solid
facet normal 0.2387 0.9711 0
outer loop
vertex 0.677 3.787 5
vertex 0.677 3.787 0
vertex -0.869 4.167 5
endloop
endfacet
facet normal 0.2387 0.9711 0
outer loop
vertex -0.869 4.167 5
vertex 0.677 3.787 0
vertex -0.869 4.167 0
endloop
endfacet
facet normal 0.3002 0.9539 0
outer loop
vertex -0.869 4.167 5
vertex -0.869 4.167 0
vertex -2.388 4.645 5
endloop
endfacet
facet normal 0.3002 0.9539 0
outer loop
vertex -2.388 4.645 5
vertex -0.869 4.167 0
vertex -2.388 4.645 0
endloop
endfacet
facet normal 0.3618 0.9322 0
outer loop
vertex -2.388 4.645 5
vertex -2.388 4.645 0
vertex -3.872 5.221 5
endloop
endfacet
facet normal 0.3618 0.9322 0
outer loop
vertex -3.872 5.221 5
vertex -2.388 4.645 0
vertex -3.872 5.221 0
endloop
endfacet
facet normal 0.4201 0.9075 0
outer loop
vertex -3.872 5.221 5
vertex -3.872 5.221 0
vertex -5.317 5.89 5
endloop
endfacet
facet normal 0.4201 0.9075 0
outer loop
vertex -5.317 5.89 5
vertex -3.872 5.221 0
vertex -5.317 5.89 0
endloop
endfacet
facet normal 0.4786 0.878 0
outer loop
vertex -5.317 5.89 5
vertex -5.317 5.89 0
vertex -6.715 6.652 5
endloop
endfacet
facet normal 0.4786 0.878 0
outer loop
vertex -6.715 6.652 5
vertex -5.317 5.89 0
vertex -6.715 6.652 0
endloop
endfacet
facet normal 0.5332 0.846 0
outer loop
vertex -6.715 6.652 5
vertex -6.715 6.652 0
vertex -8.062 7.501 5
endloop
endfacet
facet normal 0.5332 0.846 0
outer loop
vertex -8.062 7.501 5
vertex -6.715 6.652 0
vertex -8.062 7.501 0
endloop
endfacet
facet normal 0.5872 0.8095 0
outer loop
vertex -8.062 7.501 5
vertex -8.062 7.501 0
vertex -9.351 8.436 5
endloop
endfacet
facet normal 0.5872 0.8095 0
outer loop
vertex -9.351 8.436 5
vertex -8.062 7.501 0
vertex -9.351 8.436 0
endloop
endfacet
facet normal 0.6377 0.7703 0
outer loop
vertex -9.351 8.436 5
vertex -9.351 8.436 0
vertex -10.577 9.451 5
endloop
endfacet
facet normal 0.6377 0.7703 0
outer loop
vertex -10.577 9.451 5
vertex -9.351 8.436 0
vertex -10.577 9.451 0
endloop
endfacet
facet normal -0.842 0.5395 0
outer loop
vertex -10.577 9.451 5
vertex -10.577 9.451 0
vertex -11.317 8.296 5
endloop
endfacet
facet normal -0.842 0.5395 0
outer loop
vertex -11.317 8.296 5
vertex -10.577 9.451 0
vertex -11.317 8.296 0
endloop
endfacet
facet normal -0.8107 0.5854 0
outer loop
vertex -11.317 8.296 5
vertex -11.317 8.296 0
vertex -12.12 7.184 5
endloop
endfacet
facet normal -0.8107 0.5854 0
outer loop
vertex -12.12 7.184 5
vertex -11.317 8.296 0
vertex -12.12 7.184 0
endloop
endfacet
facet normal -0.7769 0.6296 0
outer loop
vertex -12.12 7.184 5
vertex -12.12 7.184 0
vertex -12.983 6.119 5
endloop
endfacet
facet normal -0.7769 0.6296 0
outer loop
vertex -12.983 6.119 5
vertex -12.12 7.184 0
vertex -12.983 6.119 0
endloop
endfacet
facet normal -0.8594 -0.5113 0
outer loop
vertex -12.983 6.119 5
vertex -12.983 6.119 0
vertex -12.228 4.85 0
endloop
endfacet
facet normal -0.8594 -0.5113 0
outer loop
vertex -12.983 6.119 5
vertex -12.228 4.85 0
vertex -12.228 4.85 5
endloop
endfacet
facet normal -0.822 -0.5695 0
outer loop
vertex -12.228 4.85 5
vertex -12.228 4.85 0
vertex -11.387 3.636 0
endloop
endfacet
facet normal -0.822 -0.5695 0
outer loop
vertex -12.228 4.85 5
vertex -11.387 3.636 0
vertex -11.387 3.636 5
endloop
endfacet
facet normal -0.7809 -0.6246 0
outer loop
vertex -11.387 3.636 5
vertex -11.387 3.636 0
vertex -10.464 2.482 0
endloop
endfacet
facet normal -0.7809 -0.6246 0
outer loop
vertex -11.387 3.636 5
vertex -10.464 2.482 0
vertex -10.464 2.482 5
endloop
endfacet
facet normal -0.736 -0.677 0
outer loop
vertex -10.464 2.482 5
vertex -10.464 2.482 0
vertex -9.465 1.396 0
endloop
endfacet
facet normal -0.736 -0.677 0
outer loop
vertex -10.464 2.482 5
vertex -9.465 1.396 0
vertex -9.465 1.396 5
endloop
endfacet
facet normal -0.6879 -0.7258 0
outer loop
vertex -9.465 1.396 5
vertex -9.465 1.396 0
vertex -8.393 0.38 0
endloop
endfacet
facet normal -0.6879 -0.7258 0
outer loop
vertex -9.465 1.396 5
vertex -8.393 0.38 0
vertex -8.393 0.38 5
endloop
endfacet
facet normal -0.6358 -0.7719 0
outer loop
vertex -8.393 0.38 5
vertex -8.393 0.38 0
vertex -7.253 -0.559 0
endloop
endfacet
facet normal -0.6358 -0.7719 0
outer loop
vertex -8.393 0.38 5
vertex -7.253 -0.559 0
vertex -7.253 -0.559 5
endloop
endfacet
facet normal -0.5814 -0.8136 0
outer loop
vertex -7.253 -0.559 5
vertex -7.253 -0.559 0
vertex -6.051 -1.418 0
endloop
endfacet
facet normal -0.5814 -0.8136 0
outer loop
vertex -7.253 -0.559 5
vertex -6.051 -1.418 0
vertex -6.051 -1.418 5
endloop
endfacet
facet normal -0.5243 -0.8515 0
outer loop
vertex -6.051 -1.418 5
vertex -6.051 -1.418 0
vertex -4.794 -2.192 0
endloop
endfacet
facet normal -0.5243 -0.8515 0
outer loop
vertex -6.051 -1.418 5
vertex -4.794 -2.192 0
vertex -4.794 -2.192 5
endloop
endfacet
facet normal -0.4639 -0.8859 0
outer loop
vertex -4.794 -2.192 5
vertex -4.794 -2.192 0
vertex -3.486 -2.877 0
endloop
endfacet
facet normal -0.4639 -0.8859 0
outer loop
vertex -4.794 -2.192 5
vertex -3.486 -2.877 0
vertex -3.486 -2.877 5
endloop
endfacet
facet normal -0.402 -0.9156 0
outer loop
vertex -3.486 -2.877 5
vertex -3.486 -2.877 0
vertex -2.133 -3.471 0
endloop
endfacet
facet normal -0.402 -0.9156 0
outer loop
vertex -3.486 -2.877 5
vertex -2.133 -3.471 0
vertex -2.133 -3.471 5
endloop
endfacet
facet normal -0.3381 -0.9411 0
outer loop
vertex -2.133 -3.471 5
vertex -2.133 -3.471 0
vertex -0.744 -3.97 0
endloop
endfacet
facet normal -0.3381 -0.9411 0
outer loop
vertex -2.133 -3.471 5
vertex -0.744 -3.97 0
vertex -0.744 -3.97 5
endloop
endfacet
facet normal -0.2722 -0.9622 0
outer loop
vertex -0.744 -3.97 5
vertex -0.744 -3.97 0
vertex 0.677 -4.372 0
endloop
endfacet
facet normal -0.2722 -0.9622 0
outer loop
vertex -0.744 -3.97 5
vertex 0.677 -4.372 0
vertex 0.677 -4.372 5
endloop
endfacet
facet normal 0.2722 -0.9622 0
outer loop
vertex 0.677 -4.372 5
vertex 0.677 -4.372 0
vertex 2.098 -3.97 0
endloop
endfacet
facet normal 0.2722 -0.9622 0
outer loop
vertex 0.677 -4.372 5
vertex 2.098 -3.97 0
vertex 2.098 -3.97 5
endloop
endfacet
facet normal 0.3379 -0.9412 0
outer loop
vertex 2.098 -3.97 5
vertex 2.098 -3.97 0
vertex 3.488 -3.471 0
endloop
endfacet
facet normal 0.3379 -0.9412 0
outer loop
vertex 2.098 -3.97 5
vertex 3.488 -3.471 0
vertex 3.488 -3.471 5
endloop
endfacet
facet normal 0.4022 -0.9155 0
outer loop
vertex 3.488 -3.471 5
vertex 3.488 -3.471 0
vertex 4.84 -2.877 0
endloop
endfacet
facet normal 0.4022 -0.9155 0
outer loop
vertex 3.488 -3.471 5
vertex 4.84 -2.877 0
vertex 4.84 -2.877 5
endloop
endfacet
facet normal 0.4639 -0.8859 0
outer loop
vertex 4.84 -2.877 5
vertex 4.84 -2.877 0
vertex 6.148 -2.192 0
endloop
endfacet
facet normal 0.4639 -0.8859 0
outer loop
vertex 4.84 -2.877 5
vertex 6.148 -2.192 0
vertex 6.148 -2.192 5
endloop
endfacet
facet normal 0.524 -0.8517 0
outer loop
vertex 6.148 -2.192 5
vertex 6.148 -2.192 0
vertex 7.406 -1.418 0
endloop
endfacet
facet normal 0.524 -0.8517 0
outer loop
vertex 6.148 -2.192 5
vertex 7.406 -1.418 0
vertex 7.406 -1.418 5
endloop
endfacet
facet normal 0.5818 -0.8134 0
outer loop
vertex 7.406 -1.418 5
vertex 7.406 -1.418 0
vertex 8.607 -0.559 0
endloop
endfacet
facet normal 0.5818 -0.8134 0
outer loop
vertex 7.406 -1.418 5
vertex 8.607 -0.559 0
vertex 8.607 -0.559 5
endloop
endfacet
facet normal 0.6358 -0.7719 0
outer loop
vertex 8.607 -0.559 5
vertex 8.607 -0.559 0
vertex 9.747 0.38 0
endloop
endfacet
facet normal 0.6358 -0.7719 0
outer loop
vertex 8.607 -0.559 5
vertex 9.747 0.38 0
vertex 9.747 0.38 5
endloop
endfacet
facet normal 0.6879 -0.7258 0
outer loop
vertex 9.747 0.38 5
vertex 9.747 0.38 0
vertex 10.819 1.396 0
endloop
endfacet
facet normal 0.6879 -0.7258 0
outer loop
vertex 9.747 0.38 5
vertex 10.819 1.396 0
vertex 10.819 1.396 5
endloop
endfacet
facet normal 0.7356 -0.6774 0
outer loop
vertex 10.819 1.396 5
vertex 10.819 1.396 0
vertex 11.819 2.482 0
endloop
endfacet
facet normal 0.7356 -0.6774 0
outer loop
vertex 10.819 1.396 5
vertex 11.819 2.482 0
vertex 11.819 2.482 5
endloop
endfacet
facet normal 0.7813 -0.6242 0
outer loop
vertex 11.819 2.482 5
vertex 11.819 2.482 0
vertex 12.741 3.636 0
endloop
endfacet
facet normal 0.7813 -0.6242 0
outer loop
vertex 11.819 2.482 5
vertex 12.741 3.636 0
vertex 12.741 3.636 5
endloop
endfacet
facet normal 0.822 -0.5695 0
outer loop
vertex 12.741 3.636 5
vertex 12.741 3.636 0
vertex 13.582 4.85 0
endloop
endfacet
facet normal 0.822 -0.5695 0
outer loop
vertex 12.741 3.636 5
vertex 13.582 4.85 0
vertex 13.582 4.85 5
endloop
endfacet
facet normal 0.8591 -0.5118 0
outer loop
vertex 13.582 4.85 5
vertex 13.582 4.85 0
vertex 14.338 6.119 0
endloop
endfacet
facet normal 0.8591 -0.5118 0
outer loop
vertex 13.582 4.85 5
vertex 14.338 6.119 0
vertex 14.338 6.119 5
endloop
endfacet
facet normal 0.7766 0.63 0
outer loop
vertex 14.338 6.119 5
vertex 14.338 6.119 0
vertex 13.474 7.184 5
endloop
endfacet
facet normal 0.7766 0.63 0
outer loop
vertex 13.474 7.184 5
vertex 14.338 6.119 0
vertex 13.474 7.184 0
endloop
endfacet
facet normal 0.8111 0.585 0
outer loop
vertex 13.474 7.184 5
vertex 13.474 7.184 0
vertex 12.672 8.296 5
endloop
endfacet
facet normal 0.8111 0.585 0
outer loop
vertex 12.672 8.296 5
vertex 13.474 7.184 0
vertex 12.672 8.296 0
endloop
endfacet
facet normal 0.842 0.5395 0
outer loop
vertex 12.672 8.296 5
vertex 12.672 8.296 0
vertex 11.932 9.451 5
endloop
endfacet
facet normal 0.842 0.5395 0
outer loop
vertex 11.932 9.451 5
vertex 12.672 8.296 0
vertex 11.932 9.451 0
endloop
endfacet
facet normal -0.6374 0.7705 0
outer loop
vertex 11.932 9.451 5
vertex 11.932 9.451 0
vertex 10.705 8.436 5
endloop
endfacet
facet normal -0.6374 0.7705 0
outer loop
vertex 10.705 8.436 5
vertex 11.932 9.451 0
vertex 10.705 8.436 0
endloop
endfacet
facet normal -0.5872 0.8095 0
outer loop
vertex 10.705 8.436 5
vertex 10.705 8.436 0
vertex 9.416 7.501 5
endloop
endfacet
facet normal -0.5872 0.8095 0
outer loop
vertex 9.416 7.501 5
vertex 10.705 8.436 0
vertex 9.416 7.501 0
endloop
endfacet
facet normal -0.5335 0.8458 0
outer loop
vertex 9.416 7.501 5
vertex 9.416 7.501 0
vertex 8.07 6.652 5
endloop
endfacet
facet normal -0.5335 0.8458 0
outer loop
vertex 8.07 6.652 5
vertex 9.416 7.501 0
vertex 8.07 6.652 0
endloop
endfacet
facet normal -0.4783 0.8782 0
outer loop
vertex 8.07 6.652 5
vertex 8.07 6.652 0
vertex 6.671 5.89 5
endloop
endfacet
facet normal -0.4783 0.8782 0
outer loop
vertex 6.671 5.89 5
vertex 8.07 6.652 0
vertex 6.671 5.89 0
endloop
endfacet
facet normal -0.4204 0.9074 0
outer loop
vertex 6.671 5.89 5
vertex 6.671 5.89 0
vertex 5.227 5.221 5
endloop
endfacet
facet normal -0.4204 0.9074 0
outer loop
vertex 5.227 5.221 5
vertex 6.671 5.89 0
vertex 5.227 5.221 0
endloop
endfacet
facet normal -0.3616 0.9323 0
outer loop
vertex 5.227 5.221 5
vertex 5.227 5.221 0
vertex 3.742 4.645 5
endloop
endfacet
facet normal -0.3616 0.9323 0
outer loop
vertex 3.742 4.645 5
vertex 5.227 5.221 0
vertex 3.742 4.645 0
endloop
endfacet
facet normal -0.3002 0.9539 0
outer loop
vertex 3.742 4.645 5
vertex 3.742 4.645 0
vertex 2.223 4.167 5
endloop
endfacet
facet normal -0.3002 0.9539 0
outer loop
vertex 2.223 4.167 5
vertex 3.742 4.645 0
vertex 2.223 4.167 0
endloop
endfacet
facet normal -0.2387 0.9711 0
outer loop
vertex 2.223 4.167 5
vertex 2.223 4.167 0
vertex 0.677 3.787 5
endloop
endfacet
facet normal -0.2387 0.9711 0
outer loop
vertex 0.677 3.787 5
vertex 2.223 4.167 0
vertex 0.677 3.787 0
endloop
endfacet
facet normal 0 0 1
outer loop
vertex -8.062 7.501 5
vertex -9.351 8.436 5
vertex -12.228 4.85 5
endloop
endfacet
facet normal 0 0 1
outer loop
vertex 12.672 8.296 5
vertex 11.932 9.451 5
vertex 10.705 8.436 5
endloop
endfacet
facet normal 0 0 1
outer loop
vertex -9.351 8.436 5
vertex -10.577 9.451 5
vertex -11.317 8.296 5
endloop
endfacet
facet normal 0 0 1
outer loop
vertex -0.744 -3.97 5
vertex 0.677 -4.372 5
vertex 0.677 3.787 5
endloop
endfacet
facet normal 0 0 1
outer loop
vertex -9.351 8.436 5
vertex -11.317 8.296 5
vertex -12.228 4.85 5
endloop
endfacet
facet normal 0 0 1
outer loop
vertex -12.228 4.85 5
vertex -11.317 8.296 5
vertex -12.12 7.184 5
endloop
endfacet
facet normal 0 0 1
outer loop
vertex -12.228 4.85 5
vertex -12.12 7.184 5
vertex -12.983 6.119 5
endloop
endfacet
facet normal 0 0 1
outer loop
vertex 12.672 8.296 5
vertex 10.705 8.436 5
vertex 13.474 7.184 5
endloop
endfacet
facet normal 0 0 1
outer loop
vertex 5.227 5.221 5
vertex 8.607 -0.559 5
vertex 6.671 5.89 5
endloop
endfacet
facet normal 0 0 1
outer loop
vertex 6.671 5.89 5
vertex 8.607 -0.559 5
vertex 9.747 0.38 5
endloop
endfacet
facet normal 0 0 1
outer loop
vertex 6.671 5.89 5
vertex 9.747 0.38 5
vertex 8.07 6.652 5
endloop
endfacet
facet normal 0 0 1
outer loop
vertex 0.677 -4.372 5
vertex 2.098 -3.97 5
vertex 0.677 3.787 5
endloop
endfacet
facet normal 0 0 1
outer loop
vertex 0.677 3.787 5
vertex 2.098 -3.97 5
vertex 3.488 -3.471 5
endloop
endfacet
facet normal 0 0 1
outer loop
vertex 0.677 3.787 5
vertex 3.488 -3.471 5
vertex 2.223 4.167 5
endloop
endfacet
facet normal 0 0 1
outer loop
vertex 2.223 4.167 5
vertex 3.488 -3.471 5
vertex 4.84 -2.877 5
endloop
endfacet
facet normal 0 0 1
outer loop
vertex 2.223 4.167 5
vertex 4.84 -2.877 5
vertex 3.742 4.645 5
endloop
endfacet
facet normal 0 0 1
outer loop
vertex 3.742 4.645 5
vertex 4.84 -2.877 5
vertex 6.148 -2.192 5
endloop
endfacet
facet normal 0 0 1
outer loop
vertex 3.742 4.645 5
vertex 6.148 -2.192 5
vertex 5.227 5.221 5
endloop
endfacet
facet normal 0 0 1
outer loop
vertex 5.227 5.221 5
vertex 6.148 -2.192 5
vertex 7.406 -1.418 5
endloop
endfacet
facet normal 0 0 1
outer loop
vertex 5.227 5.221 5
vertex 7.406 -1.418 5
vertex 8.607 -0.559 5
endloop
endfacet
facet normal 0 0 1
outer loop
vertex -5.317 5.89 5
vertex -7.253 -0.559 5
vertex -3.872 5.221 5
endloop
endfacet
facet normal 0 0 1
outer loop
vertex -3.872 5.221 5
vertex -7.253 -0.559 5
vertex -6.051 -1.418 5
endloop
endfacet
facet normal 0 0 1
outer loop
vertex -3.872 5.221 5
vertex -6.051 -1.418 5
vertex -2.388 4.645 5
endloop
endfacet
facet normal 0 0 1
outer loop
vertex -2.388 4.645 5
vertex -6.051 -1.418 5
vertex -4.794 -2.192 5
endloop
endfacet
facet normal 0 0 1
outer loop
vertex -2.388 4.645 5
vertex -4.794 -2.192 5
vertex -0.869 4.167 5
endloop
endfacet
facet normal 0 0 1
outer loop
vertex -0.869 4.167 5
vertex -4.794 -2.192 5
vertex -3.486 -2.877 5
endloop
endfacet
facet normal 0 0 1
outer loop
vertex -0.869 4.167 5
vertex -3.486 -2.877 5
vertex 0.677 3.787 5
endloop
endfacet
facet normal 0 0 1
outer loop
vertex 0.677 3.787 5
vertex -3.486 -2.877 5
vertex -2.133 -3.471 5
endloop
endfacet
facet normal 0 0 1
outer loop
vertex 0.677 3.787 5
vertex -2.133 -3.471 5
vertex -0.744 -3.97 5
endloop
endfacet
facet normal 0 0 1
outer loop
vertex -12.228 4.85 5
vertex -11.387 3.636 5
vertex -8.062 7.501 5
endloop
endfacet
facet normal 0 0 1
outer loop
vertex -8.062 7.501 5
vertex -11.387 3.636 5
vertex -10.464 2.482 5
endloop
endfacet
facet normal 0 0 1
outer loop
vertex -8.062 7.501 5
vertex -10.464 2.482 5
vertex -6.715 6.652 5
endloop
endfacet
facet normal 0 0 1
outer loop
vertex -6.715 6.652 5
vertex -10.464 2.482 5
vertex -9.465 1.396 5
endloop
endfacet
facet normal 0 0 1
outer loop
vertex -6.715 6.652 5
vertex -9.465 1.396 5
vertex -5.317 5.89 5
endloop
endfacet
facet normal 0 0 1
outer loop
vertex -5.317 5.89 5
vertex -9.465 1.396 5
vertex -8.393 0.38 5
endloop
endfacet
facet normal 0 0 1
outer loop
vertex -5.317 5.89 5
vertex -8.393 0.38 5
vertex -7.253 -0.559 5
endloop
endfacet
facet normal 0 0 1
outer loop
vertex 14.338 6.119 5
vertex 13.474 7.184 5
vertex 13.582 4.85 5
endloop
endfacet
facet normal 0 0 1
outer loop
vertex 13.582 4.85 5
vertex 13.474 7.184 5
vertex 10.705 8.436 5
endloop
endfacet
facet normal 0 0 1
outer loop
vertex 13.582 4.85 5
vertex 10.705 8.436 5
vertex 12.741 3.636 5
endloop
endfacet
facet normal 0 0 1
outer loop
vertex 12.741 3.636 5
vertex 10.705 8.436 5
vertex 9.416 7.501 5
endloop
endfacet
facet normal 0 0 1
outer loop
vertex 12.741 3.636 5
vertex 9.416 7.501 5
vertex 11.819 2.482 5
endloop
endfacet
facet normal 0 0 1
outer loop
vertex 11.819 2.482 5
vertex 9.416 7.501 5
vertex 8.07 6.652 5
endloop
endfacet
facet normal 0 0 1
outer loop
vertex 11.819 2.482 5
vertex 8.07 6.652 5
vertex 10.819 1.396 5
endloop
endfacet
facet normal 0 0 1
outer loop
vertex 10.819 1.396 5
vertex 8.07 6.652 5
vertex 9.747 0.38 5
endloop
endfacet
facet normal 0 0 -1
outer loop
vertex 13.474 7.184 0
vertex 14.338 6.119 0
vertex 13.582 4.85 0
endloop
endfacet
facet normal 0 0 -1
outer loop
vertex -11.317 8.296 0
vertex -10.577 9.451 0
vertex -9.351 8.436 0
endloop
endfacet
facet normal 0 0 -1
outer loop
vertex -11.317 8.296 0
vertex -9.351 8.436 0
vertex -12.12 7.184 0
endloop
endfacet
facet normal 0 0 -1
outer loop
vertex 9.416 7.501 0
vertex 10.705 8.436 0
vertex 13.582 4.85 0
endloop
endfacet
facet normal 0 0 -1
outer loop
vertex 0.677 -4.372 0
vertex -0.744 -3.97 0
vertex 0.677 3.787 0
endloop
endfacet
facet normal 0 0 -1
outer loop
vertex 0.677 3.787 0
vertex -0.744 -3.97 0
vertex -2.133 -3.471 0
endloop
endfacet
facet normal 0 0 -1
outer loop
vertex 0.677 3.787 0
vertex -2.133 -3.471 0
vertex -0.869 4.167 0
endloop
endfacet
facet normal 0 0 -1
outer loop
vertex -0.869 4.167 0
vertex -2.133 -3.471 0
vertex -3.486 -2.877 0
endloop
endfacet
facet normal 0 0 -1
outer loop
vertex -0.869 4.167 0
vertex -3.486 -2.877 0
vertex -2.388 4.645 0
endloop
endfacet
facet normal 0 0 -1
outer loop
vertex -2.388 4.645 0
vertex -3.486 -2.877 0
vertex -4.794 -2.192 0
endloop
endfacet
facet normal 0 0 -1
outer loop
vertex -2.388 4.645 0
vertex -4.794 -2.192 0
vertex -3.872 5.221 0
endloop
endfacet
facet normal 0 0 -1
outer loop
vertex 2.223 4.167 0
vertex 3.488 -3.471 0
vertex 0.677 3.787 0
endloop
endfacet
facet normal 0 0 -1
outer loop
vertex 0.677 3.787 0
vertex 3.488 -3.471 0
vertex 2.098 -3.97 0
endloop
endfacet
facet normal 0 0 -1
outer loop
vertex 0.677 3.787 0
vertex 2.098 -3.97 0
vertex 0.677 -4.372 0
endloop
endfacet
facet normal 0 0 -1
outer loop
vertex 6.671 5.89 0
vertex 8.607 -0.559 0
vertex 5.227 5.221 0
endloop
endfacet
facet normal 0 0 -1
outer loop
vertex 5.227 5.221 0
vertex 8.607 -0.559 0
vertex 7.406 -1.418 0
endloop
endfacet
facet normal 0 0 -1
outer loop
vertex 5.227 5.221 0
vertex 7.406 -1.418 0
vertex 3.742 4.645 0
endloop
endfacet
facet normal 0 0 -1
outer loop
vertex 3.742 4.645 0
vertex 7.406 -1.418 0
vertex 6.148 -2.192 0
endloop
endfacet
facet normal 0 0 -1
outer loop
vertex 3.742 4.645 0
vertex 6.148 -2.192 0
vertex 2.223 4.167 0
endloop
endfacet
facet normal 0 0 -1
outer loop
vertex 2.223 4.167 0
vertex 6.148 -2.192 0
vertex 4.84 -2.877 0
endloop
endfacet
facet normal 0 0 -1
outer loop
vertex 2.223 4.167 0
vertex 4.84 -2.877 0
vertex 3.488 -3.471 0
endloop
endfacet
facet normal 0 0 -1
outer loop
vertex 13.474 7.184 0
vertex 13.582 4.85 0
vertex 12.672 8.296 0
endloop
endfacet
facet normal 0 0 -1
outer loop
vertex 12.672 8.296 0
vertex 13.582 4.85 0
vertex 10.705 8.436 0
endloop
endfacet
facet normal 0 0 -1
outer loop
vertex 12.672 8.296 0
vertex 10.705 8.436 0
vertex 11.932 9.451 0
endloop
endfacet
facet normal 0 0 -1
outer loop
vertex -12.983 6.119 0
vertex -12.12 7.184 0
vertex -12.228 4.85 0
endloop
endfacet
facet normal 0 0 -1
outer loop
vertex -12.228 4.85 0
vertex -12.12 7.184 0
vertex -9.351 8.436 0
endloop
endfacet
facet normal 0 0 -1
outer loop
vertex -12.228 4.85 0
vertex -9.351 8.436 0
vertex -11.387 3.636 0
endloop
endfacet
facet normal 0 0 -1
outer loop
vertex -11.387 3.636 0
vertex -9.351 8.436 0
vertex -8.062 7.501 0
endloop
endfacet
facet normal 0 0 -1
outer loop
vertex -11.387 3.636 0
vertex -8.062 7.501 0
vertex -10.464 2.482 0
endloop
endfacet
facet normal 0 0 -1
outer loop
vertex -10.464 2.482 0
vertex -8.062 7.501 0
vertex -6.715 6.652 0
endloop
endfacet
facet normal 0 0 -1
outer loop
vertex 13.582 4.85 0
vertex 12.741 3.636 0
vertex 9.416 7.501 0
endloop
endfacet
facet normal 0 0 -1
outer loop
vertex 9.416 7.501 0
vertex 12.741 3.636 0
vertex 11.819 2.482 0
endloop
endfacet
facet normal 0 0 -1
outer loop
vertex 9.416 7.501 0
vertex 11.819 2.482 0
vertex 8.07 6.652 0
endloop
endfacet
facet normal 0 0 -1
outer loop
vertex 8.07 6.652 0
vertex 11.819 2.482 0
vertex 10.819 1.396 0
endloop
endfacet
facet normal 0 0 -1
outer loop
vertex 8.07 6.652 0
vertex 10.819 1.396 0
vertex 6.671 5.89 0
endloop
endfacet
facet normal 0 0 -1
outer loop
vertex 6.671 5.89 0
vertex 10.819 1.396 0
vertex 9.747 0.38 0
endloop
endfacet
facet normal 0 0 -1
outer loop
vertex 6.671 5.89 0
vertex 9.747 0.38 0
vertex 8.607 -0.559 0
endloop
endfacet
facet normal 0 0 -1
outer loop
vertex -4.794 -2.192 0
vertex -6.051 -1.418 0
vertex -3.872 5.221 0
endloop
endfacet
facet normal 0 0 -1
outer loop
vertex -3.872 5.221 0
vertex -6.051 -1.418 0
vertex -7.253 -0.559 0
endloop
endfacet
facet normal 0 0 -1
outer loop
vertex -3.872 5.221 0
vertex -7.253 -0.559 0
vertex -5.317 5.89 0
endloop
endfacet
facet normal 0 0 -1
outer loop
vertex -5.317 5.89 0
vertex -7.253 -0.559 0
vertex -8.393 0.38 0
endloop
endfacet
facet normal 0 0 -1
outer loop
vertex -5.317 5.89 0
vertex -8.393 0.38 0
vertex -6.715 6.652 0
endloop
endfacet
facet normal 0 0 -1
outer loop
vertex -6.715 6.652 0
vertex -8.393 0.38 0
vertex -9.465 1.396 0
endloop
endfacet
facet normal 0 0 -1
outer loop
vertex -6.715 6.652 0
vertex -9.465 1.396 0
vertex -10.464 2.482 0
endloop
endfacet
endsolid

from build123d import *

# Parameters (mm, degrees)
BOSS_EXTRUDE1_DEPTH = 5


with BuildPart() as part:
    # Sketch1 → Boss-Extrude1 (new body)
    with BuildSketch(Plane.XY):
        with BuildLine():
            ThreePointArc((-12.983067388, 6.118559097), (-11.710745891, 7.734822311), (-10.577139347, 9.451226975))
            ThreePointArc((-10.577139347, 9.451226975), (-9.313293399, 8.406652262), (-7.983008658, 7.448119311))
            ThreePointArc((-7.983008658, 7.448119311), (-3.828474377, 5.202168871), (0.677245379, 3.78691697))
            ThreePointArc((0.677245379, 3.78691697), (5.182965136, 5.202168871), (9.337499417, 7.448119311))
            ThreePointArc((9.337499417, 7.448119311), (10.667784158, 8.406652262), (11.931630106, 9.451226975))
            ThreePointArc((11.931630106, 9.451226975), (13.065236649, 7.734822311), (14.337558146, 6.118559097))
            ThreePointArc((14.337558146, 6.118559097), (12.119892503, 2.841112967), (9.337499417, 0.027221931))
            ThreePointArc((9.337499417, 0.027221931), (5.25986118, -2.66939146), (0.677245379, -4.37188663))
            ThreePointArc((0.677245379, -4.37188663), (-3.905370421, -2.66939146), (-7.983008658, 0.027221931))
            ThreePointArc((-7.983008658, 0.027221931), (-10.765401744, 2.841112967), (-12.983067388, 6.118559097))
        make_face()
    extrude(amount=BOSS_EXTRUDE1_DEPTH)


solid = part.part
